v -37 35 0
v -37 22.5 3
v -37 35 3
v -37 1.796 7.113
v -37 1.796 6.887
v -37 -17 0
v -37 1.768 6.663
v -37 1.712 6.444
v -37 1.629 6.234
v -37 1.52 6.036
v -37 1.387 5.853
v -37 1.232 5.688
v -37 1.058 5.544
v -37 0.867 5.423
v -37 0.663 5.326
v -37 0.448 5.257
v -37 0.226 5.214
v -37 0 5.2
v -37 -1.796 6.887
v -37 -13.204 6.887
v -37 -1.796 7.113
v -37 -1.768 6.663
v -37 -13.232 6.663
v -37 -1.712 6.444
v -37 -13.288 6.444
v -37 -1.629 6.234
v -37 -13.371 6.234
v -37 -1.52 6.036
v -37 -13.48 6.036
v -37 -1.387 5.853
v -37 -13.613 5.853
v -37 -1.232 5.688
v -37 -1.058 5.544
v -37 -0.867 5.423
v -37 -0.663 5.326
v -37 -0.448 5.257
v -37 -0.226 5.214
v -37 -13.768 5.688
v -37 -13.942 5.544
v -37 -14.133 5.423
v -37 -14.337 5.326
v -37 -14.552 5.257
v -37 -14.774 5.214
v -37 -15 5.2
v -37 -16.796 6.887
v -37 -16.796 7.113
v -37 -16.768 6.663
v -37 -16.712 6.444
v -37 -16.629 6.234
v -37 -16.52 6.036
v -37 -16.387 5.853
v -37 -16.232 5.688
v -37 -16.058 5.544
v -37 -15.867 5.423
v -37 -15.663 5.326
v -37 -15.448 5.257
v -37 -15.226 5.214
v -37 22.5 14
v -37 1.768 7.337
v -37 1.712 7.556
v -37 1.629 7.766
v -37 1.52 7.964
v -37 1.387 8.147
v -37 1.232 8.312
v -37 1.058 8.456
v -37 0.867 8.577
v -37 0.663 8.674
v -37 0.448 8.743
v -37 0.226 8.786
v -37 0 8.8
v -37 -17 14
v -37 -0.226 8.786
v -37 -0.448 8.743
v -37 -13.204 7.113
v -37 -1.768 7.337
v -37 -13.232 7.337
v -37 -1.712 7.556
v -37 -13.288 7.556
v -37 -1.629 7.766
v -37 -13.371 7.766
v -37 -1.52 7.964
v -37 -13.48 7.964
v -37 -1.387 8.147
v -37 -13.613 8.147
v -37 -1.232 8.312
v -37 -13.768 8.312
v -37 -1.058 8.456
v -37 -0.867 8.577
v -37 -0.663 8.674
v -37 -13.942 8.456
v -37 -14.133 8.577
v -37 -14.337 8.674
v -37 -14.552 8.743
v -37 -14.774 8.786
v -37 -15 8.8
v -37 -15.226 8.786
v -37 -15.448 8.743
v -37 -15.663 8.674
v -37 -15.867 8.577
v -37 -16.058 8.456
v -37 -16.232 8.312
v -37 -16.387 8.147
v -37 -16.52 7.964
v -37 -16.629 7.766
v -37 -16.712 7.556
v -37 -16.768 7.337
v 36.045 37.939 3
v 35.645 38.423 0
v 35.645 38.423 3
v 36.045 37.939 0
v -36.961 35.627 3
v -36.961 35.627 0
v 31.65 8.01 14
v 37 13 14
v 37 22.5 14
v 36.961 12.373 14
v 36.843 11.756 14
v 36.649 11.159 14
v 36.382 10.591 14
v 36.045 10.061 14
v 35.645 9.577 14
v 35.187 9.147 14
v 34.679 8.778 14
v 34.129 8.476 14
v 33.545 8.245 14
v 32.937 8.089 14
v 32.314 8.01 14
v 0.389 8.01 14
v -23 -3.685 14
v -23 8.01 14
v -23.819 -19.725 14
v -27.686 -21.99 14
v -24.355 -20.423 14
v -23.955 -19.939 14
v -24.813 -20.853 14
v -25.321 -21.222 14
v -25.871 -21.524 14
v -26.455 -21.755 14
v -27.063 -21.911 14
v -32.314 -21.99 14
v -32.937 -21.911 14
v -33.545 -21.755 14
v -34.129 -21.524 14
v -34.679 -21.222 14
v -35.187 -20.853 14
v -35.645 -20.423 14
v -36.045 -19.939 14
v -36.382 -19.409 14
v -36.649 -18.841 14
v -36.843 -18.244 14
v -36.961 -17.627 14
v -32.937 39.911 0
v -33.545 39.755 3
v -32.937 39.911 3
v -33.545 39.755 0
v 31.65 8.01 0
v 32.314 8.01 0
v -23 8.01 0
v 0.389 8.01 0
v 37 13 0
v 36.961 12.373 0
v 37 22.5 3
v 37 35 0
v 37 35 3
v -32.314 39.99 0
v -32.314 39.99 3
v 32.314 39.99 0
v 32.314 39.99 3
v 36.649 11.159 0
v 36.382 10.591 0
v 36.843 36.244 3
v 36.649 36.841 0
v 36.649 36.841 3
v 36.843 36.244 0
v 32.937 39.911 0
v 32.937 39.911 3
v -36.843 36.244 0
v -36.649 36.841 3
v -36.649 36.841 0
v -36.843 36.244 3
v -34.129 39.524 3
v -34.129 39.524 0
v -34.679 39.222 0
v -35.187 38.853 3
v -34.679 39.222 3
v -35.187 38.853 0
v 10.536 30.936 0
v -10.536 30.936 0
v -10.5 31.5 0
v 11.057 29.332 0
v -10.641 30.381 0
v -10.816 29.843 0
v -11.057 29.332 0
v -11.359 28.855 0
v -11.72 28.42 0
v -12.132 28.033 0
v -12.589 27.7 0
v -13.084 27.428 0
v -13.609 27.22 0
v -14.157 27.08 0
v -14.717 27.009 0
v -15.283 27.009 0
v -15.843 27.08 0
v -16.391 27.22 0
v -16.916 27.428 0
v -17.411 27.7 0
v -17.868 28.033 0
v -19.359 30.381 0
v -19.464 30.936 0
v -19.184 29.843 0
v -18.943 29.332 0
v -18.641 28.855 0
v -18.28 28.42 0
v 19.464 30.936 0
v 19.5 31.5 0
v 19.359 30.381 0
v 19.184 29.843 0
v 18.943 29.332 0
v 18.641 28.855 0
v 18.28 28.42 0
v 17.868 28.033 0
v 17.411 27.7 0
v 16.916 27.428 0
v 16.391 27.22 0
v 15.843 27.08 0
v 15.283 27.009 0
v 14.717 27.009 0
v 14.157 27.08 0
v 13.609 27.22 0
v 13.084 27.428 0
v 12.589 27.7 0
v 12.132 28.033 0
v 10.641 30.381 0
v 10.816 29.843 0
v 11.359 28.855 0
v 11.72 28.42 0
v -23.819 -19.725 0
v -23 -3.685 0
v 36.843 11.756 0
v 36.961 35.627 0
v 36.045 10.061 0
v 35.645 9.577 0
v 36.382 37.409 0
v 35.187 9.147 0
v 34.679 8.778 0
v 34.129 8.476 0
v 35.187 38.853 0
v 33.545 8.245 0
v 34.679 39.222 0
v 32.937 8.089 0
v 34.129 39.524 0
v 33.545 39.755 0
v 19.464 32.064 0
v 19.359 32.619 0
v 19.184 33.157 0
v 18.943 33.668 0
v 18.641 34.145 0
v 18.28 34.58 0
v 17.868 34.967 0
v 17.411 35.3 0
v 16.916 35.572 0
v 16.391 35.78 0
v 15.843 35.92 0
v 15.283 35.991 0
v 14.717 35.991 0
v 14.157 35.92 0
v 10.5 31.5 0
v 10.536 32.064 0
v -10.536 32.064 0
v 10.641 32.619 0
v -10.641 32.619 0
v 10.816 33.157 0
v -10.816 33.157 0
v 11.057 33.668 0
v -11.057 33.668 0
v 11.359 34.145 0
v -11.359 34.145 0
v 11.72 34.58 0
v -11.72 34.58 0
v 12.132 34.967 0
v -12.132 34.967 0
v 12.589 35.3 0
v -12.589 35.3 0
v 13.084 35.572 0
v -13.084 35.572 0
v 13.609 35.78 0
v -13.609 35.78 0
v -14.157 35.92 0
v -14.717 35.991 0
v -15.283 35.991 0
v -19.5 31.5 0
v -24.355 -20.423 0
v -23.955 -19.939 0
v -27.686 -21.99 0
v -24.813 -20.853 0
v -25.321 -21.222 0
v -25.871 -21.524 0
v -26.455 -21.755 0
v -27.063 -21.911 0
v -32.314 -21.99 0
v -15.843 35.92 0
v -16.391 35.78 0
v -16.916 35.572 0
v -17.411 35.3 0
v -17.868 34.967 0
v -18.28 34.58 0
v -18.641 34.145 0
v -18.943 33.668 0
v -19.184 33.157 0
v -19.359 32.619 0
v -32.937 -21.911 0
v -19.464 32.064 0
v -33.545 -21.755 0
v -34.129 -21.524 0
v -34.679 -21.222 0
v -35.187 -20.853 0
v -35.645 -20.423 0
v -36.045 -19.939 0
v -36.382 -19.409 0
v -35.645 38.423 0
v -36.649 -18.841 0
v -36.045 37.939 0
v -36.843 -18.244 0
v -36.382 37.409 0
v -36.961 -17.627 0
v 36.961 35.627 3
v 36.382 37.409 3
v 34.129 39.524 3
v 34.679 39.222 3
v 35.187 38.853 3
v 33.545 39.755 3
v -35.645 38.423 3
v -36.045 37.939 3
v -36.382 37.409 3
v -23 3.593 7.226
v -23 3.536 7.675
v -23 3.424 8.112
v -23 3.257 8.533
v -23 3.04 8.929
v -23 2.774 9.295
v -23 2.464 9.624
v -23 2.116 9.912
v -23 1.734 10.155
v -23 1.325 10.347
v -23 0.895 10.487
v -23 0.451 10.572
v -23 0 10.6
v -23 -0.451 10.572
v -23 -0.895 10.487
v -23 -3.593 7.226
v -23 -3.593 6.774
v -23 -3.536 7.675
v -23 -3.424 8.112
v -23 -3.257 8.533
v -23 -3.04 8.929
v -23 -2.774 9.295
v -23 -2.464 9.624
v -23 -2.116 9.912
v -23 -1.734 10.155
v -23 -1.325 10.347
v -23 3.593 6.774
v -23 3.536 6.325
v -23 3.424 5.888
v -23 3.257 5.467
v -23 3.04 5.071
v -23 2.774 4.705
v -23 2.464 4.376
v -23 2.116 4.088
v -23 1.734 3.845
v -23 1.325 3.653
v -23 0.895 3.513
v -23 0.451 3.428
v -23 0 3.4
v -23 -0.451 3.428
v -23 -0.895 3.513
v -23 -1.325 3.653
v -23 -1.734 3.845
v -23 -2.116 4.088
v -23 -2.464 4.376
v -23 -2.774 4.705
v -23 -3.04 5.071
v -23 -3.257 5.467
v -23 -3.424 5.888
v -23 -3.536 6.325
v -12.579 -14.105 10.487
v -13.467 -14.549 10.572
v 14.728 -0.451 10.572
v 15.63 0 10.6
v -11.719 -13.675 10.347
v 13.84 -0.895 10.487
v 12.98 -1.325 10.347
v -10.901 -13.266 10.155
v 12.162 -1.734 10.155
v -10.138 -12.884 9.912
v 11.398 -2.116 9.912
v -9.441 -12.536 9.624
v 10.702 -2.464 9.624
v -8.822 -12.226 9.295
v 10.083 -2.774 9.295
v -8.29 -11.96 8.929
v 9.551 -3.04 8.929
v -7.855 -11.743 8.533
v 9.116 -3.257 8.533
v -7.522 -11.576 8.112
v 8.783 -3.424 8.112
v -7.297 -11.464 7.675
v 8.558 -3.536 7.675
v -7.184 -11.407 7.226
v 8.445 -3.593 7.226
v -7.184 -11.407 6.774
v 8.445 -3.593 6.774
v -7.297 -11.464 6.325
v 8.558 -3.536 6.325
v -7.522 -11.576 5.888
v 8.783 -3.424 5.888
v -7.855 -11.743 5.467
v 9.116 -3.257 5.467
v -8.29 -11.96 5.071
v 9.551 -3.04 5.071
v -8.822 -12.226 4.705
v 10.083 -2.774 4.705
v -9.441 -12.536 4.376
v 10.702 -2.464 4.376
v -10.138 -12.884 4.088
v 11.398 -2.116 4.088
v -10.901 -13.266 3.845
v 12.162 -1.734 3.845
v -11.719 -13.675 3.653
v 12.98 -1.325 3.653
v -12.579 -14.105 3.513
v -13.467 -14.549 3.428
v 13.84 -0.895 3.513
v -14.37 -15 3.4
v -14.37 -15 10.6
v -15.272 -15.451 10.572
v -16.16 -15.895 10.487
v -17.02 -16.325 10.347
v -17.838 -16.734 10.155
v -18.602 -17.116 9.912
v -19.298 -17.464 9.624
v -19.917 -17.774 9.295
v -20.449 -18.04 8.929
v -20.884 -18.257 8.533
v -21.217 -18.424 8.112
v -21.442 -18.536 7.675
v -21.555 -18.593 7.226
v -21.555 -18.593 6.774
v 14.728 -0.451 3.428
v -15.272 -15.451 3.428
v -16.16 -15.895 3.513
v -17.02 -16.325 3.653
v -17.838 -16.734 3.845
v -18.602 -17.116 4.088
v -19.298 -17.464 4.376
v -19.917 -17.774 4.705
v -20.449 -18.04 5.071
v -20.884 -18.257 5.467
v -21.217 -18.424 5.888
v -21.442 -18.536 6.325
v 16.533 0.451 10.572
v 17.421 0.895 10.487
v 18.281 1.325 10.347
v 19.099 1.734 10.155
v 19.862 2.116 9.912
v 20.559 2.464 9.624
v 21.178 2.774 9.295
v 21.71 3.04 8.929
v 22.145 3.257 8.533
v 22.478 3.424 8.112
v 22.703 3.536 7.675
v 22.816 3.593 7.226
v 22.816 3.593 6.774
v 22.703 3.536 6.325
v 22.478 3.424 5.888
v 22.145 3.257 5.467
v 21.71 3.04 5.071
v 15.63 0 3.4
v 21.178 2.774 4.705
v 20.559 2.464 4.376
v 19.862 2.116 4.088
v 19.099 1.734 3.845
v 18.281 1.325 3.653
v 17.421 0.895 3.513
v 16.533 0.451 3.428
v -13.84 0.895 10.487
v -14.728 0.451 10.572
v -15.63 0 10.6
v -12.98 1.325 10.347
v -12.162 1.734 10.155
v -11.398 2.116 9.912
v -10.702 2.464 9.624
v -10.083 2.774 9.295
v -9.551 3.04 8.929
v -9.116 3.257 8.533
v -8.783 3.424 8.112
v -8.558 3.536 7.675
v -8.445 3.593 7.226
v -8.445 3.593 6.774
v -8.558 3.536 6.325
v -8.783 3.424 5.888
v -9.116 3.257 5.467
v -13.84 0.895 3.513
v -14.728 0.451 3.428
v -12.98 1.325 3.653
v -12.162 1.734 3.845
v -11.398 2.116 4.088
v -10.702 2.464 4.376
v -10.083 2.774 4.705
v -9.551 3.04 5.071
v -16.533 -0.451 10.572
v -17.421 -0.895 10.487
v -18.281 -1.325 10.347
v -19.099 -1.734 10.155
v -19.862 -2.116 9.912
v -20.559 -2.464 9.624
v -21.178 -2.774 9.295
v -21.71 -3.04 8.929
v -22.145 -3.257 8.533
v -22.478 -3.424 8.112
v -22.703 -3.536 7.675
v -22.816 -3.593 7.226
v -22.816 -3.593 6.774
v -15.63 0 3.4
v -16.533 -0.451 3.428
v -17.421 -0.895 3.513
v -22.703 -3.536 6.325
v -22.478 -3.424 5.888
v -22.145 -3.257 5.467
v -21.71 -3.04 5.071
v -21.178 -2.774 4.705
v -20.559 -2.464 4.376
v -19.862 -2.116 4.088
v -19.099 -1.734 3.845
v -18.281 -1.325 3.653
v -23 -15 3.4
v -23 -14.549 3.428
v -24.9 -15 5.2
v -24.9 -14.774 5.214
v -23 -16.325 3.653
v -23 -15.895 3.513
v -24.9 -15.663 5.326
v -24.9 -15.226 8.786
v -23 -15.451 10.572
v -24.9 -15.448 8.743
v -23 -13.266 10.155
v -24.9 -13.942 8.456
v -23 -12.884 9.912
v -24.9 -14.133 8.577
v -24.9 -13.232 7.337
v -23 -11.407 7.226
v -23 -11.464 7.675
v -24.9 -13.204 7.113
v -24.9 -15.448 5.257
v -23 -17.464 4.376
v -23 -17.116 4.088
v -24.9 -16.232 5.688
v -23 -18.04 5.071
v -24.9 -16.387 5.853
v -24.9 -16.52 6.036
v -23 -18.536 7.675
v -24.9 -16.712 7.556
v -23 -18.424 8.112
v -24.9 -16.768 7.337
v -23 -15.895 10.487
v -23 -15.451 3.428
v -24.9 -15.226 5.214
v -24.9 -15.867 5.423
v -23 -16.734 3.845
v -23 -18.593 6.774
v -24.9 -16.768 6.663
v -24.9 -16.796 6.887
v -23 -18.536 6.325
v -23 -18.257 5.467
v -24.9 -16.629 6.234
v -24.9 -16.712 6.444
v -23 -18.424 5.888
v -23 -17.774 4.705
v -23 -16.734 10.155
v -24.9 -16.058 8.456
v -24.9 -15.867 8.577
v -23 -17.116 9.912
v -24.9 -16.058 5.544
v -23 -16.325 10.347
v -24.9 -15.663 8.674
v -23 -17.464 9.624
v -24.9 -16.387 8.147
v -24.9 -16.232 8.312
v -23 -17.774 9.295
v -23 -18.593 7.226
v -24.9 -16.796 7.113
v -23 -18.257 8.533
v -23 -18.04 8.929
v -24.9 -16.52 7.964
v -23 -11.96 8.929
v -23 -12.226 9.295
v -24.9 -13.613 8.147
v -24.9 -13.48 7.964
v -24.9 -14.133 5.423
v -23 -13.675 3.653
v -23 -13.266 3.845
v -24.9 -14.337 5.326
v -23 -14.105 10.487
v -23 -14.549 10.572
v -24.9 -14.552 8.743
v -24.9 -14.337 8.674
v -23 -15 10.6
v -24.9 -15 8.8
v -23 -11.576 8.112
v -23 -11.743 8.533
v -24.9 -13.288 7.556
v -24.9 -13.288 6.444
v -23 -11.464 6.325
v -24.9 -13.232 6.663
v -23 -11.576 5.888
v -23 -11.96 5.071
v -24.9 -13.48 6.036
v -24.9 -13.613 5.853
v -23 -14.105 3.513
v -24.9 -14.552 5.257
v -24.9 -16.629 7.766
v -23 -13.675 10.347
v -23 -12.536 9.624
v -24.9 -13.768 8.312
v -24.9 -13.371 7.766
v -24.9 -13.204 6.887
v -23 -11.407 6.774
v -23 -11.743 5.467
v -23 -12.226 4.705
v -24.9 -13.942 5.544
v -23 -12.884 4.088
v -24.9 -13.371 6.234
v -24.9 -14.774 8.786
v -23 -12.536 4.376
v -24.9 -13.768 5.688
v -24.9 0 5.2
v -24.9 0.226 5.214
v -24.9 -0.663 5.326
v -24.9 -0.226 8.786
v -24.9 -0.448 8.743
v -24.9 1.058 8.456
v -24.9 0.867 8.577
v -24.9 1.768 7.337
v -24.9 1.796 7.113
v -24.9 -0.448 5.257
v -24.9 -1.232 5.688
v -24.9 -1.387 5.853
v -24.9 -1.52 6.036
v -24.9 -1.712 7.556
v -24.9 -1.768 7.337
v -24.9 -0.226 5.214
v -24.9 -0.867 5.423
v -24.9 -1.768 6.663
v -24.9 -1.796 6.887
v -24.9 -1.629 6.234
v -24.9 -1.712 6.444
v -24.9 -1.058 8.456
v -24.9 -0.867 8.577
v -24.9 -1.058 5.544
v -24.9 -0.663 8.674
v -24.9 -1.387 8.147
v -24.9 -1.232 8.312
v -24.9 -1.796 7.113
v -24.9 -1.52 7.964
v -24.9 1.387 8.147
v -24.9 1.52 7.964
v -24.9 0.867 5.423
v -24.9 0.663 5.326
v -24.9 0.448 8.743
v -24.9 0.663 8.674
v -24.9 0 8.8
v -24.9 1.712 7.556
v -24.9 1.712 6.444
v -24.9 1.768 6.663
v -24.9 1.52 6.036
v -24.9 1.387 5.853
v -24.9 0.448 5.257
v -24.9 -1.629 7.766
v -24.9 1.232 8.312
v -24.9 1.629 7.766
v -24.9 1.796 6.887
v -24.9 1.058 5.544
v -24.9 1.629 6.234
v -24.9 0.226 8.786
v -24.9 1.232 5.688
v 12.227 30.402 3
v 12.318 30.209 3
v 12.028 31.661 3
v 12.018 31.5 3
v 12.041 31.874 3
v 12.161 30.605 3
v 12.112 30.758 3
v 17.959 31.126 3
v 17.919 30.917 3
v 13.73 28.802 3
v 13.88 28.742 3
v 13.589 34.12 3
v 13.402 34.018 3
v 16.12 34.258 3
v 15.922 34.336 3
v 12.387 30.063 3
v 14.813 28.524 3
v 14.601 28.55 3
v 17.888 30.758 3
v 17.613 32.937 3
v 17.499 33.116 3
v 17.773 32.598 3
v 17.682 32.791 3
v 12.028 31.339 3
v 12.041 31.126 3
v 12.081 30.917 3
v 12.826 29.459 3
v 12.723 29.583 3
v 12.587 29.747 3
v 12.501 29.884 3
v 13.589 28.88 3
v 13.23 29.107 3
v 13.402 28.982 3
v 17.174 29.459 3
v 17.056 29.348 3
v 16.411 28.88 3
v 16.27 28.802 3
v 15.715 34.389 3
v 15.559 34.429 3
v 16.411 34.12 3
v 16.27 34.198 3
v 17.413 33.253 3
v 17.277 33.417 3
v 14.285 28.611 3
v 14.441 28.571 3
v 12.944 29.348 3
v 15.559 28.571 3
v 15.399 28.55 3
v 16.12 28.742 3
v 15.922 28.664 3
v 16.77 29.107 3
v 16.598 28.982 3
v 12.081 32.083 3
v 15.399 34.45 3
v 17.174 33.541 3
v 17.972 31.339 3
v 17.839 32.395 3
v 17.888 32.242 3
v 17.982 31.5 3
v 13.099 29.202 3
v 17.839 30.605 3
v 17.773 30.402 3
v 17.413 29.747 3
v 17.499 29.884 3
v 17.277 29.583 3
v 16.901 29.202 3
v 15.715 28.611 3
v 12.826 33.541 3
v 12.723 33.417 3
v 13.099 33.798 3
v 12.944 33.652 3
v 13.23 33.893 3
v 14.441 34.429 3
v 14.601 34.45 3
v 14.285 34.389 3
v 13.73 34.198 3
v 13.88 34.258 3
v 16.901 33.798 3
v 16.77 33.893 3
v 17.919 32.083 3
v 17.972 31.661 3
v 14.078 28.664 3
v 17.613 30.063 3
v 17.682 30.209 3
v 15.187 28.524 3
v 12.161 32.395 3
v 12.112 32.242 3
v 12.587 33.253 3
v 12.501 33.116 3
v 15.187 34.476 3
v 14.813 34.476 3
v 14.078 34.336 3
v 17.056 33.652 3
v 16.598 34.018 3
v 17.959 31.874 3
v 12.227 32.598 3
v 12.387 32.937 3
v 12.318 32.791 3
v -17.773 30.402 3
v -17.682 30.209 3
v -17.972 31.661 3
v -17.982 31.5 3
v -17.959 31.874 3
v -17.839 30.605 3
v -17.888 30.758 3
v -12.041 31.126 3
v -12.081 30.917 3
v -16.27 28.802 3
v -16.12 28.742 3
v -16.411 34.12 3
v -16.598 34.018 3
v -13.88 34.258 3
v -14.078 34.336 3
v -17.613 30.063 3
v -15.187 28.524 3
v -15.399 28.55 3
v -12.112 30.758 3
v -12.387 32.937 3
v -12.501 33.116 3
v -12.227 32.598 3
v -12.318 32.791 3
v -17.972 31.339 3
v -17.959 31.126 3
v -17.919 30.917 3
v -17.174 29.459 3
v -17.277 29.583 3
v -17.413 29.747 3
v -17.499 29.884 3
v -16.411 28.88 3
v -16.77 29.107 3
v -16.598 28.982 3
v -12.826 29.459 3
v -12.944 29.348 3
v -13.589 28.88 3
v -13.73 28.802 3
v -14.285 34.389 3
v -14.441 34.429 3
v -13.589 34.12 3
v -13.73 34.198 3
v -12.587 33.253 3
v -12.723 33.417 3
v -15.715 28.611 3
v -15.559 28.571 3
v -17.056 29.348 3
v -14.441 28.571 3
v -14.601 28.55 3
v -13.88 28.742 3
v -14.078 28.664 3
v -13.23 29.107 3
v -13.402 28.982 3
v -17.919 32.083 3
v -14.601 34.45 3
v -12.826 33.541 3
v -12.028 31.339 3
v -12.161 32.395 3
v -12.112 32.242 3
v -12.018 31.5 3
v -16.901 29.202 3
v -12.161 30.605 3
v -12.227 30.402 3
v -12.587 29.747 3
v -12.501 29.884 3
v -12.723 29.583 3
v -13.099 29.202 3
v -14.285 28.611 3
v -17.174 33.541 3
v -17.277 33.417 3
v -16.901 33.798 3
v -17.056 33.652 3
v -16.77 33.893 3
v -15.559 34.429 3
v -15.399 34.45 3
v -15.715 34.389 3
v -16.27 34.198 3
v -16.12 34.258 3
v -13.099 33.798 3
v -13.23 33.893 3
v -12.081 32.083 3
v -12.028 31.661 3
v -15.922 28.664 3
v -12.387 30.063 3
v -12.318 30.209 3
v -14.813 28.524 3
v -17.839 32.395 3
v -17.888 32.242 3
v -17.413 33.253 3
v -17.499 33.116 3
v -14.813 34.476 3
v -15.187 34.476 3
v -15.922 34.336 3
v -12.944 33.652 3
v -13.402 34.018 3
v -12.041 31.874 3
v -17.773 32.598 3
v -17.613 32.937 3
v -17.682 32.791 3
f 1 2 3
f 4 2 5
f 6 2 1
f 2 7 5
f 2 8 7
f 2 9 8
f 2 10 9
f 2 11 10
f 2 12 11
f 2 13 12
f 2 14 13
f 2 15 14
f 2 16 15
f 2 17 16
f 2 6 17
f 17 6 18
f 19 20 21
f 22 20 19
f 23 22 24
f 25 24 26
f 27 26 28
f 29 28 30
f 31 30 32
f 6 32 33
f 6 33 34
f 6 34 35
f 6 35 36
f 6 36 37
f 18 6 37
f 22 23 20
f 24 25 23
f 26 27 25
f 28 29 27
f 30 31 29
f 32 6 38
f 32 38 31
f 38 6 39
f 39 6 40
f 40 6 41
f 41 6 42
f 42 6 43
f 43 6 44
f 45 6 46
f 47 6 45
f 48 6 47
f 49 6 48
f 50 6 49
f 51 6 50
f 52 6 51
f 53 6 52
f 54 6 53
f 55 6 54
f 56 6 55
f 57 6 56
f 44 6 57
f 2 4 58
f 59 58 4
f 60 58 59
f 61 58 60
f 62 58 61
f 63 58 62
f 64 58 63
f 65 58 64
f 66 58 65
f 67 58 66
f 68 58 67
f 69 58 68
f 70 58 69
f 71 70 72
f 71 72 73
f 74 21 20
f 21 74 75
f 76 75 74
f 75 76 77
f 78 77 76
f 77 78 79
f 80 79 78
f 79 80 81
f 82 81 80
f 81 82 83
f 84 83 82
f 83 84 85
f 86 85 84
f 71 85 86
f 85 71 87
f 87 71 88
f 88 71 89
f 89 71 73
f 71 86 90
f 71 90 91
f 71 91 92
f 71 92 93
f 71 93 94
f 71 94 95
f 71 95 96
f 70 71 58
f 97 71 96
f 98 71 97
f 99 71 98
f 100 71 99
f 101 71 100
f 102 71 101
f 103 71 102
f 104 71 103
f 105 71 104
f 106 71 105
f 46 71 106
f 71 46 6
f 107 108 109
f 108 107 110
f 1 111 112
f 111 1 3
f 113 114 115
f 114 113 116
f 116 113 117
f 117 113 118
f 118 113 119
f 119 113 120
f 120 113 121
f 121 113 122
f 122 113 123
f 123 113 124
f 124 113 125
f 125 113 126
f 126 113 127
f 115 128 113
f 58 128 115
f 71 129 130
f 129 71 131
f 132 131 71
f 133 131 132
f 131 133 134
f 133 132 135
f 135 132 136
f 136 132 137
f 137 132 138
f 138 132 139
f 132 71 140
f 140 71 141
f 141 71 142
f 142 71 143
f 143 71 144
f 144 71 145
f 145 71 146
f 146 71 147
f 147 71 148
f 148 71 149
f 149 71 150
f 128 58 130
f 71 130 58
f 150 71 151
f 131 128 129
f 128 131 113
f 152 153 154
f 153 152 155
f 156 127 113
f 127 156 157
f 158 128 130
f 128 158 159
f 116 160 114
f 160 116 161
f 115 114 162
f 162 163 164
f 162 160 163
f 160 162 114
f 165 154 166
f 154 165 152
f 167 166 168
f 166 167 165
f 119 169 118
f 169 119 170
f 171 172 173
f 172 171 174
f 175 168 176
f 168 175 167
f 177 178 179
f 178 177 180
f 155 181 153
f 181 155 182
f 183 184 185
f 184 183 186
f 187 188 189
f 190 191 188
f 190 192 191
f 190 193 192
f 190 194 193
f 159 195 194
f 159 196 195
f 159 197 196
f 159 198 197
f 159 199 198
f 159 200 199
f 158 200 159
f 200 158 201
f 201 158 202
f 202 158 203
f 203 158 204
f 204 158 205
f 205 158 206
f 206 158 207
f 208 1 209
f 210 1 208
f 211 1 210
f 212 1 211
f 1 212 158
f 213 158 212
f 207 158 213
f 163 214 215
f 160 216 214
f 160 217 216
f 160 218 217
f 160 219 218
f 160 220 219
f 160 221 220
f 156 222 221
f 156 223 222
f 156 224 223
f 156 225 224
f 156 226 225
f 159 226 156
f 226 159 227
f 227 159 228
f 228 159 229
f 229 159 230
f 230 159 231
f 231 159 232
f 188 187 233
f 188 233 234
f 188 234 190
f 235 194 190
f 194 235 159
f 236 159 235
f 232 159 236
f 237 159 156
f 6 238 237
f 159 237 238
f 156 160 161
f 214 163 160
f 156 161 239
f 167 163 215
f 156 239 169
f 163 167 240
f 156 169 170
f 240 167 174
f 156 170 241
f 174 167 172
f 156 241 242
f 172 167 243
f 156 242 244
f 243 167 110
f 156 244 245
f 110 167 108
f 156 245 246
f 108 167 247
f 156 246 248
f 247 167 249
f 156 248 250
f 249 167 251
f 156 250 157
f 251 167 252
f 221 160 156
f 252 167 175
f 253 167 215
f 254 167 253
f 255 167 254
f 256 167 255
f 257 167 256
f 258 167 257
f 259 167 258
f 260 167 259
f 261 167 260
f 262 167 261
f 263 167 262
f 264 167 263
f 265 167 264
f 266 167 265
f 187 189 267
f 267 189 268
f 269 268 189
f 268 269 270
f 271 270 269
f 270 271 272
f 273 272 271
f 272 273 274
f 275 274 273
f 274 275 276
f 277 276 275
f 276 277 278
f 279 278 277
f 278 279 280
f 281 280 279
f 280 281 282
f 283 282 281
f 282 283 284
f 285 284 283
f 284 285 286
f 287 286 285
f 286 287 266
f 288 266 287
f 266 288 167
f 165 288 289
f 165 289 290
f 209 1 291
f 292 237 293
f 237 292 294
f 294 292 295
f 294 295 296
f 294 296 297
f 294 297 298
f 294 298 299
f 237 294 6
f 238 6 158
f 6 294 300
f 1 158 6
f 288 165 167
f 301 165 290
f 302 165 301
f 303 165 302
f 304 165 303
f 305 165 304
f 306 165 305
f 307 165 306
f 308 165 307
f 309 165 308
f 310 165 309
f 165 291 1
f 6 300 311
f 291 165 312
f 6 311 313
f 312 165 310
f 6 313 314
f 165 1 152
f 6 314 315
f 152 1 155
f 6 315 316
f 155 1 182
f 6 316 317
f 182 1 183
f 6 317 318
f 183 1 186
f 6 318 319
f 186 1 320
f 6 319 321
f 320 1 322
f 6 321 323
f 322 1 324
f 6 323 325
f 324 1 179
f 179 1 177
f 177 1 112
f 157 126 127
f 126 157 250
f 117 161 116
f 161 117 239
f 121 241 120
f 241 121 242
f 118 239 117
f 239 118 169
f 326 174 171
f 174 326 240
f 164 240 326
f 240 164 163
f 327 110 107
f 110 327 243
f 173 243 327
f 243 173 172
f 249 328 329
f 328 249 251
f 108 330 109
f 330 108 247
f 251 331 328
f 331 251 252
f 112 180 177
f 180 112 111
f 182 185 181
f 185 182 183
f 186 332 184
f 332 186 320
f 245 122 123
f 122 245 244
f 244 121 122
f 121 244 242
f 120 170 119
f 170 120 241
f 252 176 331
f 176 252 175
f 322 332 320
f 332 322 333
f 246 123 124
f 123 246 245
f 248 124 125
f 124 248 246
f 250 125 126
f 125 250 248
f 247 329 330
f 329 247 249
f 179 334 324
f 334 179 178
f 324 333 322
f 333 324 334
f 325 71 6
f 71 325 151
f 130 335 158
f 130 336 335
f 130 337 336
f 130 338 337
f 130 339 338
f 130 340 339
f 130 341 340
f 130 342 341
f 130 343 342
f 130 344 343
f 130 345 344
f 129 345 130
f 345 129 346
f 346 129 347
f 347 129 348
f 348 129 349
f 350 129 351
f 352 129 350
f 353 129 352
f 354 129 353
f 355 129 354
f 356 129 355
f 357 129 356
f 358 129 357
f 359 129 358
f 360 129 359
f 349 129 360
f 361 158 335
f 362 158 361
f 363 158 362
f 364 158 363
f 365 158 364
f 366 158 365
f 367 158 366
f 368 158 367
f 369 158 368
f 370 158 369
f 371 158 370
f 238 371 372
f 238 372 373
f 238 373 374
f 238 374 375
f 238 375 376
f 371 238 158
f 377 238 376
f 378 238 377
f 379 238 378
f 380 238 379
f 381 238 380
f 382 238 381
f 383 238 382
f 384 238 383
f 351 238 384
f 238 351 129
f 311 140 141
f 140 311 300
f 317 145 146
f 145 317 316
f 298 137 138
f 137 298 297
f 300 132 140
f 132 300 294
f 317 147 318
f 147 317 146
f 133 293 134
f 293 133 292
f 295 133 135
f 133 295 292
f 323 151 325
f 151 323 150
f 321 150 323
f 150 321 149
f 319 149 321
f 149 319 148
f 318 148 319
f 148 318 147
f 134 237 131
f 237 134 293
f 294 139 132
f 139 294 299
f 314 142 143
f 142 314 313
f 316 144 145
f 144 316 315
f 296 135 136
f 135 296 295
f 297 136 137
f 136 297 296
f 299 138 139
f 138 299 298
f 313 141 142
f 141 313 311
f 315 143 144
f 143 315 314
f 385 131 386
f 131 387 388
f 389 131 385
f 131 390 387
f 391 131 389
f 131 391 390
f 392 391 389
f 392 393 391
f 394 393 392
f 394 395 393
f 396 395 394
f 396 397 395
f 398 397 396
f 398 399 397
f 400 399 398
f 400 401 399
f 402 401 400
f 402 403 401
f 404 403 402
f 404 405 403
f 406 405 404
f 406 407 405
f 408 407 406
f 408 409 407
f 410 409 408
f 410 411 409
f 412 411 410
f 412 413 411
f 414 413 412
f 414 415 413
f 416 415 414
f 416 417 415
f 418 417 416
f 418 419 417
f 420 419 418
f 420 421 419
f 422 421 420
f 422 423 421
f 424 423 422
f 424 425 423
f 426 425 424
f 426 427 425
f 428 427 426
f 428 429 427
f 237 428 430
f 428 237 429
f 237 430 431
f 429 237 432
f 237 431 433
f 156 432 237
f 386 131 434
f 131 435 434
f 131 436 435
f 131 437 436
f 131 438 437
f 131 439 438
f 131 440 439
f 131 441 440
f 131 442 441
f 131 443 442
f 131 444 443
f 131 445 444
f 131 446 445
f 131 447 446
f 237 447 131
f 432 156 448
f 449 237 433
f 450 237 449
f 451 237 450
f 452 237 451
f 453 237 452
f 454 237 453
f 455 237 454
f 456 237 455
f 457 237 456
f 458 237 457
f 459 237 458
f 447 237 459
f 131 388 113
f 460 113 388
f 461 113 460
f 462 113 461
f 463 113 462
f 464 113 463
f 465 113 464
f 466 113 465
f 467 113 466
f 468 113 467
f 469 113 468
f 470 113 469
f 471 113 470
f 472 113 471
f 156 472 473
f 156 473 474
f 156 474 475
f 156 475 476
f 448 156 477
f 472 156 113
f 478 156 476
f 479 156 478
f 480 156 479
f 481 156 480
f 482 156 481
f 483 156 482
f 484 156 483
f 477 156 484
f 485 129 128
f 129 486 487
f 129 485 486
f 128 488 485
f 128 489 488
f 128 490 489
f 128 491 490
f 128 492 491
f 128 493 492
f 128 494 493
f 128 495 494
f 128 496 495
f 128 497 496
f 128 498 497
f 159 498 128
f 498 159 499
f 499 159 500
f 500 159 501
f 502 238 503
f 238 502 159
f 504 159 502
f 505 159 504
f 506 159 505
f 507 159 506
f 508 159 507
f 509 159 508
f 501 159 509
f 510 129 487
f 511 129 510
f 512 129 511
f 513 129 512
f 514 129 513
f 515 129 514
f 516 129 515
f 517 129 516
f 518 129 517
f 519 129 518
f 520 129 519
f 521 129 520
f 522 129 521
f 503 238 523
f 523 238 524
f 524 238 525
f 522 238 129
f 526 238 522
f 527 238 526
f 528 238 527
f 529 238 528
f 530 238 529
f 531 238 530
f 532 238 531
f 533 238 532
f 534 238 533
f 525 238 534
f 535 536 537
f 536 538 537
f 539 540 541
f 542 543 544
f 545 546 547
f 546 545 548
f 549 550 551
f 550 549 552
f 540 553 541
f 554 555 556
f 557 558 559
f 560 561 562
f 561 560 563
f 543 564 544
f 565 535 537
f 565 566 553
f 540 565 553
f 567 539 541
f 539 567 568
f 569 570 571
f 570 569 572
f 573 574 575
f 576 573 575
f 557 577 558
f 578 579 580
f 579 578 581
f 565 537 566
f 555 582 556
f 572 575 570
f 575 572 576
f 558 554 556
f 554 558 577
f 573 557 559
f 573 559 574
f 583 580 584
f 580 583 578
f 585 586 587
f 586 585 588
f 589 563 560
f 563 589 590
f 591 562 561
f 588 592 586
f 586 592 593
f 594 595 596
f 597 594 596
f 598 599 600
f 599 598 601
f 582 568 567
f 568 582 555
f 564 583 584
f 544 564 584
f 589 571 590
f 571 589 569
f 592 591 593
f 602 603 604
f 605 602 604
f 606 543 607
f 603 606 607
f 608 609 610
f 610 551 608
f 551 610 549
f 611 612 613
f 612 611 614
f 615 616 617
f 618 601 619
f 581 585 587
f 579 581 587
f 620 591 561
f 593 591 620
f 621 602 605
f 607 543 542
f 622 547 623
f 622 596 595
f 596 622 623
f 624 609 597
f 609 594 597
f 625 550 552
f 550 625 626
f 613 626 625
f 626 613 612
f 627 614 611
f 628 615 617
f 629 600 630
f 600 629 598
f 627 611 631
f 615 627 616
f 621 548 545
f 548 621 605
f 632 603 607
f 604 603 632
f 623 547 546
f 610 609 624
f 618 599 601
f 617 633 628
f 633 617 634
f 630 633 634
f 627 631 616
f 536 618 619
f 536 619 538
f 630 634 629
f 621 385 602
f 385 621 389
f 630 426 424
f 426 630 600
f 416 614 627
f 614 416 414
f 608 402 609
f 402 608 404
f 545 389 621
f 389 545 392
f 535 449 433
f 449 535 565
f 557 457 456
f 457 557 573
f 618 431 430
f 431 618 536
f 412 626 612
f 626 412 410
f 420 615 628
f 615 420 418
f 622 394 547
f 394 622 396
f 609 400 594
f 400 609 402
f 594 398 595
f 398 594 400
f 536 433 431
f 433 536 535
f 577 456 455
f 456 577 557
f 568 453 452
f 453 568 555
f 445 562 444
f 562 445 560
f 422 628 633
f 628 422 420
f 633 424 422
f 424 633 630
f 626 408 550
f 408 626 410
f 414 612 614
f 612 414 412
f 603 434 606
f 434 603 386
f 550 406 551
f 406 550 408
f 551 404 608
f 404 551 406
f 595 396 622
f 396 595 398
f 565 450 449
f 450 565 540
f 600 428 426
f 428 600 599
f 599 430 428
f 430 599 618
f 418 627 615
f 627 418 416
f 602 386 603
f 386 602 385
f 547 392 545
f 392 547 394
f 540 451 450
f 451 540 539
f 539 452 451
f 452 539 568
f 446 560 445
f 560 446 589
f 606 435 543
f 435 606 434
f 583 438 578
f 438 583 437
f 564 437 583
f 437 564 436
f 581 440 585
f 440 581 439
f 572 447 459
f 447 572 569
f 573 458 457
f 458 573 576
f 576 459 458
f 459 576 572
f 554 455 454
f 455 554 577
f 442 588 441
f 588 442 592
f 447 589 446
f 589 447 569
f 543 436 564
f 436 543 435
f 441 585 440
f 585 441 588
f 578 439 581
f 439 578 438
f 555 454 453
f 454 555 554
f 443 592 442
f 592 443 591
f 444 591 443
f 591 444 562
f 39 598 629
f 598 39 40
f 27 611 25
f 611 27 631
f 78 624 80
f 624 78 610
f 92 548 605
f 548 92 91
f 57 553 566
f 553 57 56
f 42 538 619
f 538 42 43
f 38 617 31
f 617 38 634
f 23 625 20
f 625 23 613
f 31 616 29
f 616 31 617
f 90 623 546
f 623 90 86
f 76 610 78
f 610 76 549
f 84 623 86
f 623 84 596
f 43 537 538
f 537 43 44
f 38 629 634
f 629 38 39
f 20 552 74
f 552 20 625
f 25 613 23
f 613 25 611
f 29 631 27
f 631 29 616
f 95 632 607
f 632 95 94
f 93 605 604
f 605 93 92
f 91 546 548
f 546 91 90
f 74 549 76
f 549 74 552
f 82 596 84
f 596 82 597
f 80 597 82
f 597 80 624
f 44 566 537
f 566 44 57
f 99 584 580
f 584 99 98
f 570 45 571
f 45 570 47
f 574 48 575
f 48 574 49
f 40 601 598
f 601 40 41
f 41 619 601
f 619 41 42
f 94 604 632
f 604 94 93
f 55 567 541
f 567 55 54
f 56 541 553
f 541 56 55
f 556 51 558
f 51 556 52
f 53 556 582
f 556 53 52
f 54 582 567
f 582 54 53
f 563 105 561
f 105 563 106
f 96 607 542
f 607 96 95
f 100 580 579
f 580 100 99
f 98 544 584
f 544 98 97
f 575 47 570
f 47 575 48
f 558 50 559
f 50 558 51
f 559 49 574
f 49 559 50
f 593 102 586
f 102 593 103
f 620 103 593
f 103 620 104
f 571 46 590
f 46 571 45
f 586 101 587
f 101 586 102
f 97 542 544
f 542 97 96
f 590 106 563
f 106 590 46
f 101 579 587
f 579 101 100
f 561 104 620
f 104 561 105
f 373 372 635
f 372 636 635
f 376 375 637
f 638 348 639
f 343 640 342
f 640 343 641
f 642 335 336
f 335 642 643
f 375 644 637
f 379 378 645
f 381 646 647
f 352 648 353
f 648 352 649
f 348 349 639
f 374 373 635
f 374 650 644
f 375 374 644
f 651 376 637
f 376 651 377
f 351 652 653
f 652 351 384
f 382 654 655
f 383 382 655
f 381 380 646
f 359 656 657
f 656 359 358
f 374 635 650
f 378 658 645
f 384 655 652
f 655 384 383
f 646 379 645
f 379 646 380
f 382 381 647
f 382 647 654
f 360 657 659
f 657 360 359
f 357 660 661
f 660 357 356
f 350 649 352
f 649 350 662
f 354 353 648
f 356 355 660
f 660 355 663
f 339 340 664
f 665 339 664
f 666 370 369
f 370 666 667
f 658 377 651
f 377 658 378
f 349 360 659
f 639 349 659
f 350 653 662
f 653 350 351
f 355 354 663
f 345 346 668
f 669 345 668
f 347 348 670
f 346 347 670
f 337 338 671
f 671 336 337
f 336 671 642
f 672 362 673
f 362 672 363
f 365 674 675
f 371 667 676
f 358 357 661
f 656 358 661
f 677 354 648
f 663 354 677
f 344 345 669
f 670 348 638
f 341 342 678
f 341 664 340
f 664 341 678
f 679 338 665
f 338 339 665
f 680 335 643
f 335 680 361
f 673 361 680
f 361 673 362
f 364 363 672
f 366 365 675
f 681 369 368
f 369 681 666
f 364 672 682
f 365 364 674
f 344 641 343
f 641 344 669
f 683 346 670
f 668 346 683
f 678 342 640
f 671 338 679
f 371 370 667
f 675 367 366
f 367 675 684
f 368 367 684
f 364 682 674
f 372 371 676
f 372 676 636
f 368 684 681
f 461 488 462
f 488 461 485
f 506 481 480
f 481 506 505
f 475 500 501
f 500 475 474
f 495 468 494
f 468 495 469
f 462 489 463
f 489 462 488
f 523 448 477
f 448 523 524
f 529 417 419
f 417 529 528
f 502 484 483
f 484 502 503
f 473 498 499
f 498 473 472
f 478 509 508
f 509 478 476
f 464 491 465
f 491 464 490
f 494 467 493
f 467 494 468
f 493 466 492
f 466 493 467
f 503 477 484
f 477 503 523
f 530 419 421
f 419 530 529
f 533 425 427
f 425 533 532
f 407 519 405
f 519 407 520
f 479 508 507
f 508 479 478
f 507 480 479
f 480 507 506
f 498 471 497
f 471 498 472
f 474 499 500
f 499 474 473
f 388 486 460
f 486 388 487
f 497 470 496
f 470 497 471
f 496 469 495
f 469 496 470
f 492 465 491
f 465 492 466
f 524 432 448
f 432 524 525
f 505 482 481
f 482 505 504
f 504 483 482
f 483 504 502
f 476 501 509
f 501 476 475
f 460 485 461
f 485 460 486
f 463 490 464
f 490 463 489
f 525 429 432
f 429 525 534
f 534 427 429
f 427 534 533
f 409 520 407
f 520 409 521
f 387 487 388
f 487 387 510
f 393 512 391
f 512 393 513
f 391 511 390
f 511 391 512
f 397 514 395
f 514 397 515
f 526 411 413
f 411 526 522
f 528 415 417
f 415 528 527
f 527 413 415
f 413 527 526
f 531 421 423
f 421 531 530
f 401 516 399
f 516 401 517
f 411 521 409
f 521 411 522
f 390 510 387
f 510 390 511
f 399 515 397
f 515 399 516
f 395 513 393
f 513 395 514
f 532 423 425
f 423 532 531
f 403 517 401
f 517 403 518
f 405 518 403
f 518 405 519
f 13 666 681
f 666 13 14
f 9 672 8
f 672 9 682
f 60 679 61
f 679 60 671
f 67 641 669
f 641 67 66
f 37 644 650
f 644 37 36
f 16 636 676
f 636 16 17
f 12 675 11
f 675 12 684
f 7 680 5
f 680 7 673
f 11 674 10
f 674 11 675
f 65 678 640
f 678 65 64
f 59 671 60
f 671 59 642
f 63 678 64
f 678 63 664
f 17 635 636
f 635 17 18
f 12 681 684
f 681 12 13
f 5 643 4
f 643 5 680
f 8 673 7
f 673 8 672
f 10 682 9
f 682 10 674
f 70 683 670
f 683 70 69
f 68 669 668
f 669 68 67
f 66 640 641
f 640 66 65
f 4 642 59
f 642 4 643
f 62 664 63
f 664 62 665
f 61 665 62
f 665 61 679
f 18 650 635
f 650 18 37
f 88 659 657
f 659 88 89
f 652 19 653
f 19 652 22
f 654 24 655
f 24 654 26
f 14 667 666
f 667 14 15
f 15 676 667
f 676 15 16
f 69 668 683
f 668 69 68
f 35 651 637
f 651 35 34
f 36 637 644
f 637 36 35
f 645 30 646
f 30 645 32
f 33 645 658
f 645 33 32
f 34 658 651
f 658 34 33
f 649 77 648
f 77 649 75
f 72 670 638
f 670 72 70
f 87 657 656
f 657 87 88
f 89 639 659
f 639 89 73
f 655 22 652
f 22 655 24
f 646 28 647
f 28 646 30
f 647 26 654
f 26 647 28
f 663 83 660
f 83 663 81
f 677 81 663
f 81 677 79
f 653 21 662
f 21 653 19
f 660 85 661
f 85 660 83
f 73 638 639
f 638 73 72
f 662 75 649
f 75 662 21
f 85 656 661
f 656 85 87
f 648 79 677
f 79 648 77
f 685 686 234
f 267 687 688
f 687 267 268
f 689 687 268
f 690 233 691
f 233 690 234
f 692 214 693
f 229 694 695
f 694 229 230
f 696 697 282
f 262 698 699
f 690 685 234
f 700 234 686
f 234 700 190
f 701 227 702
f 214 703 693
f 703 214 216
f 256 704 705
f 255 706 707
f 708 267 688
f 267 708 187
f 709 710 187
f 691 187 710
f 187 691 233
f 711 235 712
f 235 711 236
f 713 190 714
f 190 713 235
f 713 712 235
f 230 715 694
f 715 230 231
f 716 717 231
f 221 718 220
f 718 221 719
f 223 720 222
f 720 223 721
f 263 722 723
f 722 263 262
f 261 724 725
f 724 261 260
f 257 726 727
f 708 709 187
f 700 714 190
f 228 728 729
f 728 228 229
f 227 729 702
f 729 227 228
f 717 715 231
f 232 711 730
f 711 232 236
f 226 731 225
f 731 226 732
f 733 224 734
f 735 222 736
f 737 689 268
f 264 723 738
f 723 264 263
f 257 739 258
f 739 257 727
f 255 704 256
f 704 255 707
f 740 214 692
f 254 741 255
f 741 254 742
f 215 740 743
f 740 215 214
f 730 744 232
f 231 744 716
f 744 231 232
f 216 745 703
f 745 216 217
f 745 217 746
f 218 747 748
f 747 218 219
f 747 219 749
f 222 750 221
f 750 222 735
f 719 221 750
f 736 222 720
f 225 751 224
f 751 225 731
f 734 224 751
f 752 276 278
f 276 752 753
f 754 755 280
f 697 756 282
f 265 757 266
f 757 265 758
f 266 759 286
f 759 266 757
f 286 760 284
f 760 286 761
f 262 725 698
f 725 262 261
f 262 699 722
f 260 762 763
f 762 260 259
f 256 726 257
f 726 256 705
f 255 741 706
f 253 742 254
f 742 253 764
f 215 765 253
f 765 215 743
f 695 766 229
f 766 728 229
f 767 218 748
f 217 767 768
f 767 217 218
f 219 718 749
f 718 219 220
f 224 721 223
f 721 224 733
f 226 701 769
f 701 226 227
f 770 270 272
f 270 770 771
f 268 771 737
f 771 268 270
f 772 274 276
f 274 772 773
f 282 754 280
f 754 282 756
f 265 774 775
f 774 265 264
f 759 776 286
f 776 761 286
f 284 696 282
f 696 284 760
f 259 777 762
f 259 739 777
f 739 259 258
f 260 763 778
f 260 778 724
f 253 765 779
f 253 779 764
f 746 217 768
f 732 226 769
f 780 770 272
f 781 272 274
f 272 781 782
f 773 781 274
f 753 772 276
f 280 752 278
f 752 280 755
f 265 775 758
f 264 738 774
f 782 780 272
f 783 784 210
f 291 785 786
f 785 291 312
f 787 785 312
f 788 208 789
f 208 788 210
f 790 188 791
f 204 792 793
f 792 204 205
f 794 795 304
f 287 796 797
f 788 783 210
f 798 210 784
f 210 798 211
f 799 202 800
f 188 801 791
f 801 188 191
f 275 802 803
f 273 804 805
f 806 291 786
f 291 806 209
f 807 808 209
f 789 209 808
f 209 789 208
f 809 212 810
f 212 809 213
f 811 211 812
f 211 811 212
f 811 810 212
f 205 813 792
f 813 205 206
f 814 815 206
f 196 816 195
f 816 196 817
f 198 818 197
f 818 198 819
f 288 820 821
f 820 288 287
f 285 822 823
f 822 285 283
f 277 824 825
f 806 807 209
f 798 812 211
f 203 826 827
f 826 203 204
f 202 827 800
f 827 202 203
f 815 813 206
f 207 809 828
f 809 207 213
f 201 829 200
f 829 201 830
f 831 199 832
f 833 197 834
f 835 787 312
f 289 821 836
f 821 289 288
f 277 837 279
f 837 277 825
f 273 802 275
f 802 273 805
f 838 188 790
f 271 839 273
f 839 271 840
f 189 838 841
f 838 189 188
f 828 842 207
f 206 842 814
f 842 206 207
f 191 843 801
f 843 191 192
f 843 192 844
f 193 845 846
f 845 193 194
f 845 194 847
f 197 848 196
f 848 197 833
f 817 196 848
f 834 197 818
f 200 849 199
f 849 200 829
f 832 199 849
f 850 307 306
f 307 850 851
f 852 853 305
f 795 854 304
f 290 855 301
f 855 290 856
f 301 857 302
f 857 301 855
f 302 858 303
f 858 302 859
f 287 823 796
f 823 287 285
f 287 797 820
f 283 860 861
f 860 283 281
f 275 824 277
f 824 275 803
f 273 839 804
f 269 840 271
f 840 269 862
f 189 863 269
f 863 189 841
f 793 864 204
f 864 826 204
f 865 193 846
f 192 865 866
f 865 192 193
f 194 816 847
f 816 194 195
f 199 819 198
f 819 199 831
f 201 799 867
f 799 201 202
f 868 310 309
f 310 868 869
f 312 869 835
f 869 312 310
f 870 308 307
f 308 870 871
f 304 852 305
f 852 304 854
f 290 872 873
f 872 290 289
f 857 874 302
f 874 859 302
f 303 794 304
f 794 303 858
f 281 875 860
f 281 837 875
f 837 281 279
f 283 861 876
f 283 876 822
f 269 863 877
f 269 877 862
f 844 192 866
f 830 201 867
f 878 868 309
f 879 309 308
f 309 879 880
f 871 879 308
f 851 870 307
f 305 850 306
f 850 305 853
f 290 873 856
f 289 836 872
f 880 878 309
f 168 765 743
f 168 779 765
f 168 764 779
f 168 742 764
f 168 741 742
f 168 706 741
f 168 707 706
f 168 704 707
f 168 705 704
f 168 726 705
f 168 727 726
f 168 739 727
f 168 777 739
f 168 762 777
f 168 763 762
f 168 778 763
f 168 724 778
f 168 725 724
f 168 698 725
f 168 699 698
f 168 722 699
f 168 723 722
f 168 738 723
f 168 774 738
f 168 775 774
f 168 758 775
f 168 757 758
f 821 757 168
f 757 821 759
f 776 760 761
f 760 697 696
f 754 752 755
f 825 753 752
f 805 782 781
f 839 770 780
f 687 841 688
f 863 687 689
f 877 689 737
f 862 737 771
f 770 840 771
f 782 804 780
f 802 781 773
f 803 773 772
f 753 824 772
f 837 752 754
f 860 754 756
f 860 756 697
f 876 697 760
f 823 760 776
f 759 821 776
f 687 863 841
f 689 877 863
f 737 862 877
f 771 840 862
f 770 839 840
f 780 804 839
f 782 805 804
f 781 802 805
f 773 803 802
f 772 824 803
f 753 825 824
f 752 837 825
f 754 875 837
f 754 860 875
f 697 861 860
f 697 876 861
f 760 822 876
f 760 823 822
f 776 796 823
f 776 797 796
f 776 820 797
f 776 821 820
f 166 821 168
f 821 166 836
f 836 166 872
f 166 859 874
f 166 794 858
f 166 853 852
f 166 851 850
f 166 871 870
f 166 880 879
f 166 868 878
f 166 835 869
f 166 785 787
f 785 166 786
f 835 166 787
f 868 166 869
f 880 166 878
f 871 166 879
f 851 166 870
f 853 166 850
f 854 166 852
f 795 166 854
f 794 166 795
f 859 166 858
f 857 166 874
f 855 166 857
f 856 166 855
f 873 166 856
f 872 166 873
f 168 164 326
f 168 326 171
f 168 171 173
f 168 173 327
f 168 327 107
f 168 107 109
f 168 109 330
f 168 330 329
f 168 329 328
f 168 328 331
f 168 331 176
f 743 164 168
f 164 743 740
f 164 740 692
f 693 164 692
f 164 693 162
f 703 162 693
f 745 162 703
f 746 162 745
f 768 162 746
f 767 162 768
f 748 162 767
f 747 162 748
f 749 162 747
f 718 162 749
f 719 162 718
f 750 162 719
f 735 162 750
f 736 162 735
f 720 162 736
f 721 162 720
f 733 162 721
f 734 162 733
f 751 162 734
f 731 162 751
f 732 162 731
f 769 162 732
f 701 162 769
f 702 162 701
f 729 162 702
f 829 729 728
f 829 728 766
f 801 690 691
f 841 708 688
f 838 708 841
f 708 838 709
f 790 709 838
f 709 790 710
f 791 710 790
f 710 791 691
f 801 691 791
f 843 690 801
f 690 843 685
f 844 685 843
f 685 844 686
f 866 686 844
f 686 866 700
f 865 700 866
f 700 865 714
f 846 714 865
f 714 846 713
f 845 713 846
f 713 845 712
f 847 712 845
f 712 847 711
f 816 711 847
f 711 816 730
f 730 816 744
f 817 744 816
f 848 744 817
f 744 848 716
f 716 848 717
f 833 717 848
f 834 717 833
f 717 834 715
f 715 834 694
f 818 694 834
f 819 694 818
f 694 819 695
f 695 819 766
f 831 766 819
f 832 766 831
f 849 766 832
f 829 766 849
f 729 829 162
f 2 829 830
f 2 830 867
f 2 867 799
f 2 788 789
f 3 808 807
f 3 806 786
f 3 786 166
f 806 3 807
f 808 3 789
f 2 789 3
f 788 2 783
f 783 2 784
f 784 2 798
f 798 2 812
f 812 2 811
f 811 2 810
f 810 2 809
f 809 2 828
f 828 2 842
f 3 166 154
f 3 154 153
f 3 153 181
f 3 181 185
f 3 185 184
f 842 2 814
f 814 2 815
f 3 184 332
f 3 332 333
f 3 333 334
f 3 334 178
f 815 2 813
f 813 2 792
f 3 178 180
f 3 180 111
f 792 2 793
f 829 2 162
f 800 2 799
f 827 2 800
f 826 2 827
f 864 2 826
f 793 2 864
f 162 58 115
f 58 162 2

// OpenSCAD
$fn = 50;


difference() {
	union() {
		translate(v = [0, 24.0000000000, 0]) {
			hull() {
				translate(v = [-32.0000000000, 11.0000000000, 0]) {
					cylinder(h = 14, r = 5);
				}
				translate(v = [32.0000000000, 11.0000000000, 0]) {
					cylinder(h = 14, r = 5);
				}
				translate(v = [-32.0000000000, -11.0000000000, 0]) {
					cylinder(h = 14, r = 5);
				}
				translate(v = [32.0000000000, -11.0000000000, 0]) {
					cylinder(h = 14, r = 5);
				}
			}
		}
		translate(v = [-30.0000000000, 0, 0]) {
			hull() {
				translate(v = [-2.0000000000, 17.0000000000, 0]) {
					cylinder(h = 14, r = 5);
				}
				translate(v = [2.0000000000, 17.0000000000, 0]) {
					cylinder(h = 14, r = 5);
				}
				translate(v = [-2.0000000000, -17.0000000000, 0]) {
					cylinder(h = 14, r = 5);
				}
				translate(v = [2.0000000000, -17.0000000000, 0]) {
					cylinder(h = 14, r = 5);
				}
			}
		}
		rotate(a = [0, 0, 26.5650511771]) {
			hull() {
				translate(v = [-33.0410196625, 2.0000000000, 0]) {
					cylinder(h = 14, r = 5);
				}
				translate(v = [33.0410196625, 2.0000000000, 0]) {
					cylinder(h = 14, r = 5);
				}
				translate(v = [-33.0410196625, -2.0000000000, 0]) {
					cylinder(h = 14, r = 5);
				}
				translate(v = [33.0410196625, -2.0000000000, 0]) {
					cylinder(h = 14, r = 5);
				}
			}
		}
	}
	union() {
		translate(v = [-23.0000000000, -15.0000000000, 7.0000000000]) {
			rotate(a = [0, 90, 0]) {
				difference() {
					union() {
						#translate(v = [0, 0, -14.0000000000]) {
							cylinder(h = 14, r = 1.5000000000);
						}
						#translate(v = [0, 0, -1.9000000000]) {
							cylinder(h = 1.9000000000, r1 = 1.8000000000, r2 = 3.6000000000);
						}
						#cylinder(h = 250, r = 3.6000000000);
						#translate(v = [0, 0, -14.0000000000]) {
							cylinder(h = 14, r = 1.8000000000);
						}
						#translate(v = [0, 0, -14.0000000000]) {
							cylinder(h = 14, r = 1.5000000000);
						}
					}
					union();
				}
			}
		}
		translate(v = [-23.0000000000, 0.0000000000, 7.0000000000]) {
			rotate(a = [0, 90, 0]) {
				difference() {
					union() {
						#translate(v = [0, 0, -14.0000000000]) {
							cylinder(h = 14, r = 1.5000000000);
						}
						#translate(v = [0, 0, -1.9000000000]) {
							cylinder(h = 1.9000000000, r1 = 1.8000000000, r2 = 3.6000000000);
						}
						#cylinder(h = 250, r = 3.6000000000);
						#translate(v = [0, 0, -14.0000000000]) {
							cylinder(h = 14, r = 1.8000000000);
						}
						#translate(v = [0, 0, -14.0000000000]) {
							cylinder(h = 14, r = 1.5000000000);
						}
					}
					union();
				}
			}
		}
		translate(v = [15.0000000000, 31.5000000000, 0.0000000000]) {
			rotate(a = [0, 180, 0]) {
				difference() {
					union() {
						#translate(v = [0, 0, -14.0000000000]) {
							cylinder(h = 14, r = 2.2500000000);
						}
						#translate(v = [0, 0, -4.2000000000]) {
							cylinder(h = 4.2000000000, r1 = 2.3750000000, r2 = 4.5000000000);
						}
						#cylinder(h = 250, r = 4.5000000000);
						#translate(v = [0, 0, -14.0000000000]) {
							cylinder(h = 14, r = 2.3750000000);
						}
						#translate(v = [0, 0, -14.0000000000]) {
							cylinder(h = 14, r = 2.2500000000);
						}
					}
					union();
				}
			}
		}
		translate(v = [-15.0000000000, 31.5000000000, 0.0000000000]) {
			rotate(a = [0, 180, 0]) {
				difference() {
					union() {
						#translate(v = [0, 0, -14.0000000000]) {
							cylinder(h = 14, r = 2.2500000000);
						}
						#translate(v = [0, 0, -4.2000000000]) {
							cylinder(h = 4.2000000000, r1 = 2.3750000000, r2 = 4.5000000000);
						}
						#cylinder(h = 250, r = 4.5000000000);
						#translate(v = [0, 0, -14.0000000000]) {
							cylinder(h = 14, r = 2.3750000000);
						}
						#translate(v = [0, 0, -14.0000000000]) {
							cylinder(h = 14, r = 2.2500000000);
						}
					}
					union();
				}
			}
		}
		translate(v = [-37.0000000000, 22.5000000000, 3]) {
			cube(size = [74, 18, 11]);
		}
	}
}
